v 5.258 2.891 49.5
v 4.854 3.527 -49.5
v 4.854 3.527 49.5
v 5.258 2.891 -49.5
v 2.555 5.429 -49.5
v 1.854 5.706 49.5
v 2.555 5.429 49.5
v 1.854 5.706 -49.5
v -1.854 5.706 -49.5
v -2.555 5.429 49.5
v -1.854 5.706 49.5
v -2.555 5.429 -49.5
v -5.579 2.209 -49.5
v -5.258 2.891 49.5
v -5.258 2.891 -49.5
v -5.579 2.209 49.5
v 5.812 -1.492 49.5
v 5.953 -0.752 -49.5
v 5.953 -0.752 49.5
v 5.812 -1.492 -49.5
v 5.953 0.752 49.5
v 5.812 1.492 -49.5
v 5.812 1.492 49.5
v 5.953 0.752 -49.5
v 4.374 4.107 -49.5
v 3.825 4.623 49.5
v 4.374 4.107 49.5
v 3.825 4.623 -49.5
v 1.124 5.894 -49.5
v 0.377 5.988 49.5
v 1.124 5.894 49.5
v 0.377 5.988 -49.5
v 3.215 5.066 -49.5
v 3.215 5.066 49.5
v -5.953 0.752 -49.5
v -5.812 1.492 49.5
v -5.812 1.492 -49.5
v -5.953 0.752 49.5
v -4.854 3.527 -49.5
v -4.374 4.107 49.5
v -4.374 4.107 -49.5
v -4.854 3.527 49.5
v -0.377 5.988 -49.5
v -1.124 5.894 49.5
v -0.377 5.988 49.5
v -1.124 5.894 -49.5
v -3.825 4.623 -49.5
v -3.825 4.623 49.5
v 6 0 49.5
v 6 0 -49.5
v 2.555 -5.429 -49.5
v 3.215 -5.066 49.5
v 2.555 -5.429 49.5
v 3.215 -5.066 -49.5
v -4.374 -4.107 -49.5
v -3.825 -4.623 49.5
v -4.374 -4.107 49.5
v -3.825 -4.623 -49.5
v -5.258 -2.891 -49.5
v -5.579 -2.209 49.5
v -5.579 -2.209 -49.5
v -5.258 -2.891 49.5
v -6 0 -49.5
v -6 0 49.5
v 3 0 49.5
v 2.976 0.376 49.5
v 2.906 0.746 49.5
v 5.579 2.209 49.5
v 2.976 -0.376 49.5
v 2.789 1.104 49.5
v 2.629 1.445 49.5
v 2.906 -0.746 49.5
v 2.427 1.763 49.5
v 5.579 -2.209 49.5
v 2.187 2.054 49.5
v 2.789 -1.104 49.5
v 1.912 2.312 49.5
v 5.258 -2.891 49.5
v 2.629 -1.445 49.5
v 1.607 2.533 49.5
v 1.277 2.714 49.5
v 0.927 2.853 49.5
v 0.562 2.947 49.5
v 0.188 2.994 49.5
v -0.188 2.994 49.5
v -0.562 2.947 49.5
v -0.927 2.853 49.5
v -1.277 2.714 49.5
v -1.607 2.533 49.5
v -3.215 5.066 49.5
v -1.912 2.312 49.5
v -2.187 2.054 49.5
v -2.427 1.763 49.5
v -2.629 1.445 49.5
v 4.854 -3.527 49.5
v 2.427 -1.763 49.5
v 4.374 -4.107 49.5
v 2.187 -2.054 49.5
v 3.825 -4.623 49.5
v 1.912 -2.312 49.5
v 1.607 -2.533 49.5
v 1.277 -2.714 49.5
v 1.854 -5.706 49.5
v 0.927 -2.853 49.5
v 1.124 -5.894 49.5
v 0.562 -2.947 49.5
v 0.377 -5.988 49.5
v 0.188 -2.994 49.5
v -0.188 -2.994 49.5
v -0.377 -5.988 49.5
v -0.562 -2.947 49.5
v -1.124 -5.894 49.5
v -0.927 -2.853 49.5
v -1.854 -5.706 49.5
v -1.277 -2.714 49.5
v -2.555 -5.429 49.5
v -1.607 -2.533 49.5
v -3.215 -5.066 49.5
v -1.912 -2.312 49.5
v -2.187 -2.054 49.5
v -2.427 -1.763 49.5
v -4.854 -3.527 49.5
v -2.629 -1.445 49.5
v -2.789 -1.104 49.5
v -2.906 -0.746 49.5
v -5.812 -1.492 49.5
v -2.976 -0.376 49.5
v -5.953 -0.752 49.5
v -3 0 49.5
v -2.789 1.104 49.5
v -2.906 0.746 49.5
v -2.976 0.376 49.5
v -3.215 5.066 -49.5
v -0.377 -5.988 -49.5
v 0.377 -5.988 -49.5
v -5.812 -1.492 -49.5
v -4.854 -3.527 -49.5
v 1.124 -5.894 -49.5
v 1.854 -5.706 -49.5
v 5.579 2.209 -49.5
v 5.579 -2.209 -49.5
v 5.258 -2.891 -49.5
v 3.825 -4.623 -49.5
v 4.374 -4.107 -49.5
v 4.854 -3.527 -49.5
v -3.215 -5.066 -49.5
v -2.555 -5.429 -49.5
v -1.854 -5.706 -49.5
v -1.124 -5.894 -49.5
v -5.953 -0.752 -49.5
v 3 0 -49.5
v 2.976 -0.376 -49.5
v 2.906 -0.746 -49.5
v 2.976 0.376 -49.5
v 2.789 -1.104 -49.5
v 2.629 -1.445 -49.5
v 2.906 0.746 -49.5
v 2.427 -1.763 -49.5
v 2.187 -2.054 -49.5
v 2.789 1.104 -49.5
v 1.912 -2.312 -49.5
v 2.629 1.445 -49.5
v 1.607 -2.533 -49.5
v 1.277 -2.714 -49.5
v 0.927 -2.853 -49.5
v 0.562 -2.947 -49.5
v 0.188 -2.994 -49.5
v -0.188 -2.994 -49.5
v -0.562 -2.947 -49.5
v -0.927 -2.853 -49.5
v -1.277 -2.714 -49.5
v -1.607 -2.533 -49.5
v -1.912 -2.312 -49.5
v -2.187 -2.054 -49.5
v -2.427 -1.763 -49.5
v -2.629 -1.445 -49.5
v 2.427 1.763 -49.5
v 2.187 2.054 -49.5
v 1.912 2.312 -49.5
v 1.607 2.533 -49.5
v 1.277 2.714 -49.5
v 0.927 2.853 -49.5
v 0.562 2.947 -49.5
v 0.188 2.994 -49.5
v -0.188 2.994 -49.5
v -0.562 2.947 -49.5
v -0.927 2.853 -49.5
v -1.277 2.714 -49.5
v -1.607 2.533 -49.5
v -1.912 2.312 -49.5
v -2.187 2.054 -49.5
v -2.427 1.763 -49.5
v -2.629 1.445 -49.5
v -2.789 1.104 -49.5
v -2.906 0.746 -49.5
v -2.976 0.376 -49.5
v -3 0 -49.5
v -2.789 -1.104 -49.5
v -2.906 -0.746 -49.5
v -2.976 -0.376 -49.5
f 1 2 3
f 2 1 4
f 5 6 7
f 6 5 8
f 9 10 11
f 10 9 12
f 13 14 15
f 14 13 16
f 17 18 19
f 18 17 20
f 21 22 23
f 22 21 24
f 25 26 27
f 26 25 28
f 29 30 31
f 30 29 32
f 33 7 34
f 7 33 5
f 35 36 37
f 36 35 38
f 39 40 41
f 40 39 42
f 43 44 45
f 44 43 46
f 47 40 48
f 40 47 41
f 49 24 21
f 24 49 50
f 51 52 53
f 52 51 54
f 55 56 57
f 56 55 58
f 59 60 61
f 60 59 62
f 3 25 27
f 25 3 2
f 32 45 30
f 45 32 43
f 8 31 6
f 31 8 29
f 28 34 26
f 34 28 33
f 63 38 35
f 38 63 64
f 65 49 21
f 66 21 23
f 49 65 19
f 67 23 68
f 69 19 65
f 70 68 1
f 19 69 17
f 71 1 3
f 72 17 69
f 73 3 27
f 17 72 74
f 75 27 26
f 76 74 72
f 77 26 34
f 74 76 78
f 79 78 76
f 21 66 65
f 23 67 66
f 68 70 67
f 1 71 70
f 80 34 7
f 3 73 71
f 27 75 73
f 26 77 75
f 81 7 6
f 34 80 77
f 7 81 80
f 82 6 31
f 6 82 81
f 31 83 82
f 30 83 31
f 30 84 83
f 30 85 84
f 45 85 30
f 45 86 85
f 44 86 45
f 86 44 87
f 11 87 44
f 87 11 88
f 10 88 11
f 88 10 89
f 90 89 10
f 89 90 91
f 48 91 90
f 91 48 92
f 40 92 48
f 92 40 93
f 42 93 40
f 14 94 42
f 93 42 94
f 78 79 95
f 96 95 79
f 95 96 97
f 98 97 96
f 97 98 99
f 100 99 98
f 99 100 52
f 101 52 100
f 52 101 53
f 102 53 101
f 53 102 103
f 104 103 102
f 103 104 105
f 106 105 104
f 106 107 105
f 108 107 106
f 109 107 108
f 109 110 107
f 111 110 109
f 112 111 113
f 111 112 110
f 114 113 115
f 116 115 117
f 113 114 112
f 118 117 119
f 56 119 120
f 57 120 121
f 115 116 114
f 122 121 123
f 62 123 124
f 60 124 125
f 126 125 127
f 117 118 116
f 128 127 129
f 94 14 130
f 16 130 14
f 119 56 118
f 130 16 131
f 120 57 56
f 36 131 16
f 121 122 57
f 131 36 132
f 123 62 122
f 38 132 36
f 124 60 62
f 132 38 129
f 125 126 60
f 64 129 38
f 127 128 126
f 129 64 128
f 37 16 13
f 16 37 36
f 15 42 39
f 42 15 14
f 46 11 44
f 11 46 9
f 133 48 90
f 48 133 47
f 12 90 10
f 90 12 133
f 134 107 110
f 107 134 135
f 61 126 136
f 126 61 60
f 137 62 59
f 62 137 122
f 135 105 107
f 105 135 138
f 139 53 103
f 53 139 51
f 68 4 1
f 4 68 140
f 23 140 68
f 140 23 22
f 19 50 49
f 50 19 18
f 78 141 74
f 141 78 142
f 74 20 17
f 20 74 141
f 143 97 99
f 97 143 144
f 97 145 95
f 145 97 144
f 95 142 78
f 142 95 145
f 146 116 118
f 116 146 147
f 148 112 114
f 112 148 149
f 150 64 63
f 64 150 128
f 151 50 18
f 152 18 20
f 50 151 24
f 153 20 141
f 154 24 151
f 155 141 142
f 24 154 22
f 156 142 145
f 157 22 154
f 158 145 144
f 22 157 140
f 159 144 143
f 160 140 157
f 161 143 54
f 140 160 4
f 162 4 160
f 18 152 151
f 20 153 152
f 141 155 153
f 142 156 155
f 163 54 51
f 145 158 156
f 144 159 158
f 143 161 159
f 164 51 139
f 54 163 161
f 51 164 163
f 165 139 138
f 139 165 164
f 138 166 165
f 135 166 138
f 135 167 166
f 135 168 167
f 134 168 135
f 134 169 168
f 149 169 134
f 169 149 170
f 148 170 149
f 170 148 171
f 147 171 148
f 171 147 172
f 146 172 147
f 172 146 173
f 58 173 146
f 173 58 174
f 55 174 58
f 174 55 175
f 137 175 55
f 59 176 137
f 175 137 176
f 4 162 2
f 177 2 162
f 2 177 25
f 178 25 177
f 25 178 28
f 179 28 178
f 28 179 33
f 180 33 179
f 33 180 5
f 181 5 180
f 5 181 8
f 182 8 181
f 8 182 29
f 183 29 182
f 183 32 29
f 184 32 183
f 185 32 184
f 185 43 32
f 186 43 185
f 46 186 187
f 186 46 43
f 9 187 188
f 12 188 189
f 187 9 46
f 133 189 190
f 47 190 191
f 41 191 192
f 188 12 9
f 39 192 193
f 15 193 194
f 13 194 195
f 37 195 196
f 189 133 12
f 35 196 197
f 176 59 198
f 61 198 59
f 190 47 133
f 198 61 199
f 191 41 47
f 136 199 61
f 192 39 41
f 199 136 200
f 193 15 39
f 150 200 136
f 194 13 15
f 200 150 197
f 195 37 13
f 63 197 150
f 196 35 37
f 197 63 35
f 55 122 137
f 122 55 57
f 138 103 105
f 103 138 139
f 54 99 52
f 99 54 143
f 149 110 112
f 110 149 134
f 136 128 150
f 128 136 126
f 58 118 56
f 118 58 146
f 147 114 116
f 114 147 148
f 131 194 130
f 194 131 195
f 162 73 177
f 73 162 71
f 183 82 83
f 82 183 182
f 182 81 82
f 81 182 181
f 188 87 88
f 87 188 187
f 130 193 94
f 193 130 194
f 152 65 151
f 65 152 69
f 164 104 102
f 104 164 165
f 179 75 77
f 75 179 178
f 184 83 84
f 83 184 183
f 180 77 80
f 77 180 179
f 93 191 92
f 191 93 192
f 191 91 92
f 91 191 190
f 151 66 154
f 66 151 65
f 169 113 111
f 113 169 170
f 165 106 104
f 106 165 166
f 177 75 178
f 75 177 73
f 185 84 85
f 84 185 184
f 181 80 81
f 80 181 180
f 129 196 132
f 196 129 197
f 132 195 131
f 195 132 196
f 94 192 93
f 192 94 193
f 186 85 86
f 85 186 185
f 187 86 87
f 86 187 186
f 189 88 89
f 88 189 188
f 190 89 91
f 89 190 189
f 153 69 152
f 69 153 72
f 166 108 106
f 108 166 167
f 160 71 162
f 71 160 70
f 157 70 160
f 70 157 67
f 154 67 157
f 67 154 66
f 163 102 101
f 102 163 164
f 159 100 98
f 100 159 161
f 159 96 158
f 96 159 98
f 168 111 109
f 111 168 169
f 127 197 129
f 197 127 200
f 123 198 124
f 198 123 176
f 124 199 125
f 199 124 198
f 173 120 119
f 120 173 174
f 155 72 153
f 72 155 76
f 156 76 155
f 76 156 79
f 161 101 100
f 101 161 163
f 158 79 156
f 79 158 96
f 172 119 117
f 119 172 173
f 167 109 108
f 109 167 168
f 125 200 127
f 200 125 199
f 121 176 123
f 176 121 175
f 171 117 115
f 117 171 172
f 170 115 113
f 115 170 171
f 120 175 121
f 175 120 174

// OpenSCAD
$fn = 50;


difference() {
	union() {
		translate(v = [0, 0, -49.5000000000]) {
			cylinder(h = 99, r = 6.0000000000);
		}
	}
	union() {
		translate(v = [0, 0, -100.0000000000]) {
			cylinder(h = 200, r = 3.0000000000);
		}
	}
}
